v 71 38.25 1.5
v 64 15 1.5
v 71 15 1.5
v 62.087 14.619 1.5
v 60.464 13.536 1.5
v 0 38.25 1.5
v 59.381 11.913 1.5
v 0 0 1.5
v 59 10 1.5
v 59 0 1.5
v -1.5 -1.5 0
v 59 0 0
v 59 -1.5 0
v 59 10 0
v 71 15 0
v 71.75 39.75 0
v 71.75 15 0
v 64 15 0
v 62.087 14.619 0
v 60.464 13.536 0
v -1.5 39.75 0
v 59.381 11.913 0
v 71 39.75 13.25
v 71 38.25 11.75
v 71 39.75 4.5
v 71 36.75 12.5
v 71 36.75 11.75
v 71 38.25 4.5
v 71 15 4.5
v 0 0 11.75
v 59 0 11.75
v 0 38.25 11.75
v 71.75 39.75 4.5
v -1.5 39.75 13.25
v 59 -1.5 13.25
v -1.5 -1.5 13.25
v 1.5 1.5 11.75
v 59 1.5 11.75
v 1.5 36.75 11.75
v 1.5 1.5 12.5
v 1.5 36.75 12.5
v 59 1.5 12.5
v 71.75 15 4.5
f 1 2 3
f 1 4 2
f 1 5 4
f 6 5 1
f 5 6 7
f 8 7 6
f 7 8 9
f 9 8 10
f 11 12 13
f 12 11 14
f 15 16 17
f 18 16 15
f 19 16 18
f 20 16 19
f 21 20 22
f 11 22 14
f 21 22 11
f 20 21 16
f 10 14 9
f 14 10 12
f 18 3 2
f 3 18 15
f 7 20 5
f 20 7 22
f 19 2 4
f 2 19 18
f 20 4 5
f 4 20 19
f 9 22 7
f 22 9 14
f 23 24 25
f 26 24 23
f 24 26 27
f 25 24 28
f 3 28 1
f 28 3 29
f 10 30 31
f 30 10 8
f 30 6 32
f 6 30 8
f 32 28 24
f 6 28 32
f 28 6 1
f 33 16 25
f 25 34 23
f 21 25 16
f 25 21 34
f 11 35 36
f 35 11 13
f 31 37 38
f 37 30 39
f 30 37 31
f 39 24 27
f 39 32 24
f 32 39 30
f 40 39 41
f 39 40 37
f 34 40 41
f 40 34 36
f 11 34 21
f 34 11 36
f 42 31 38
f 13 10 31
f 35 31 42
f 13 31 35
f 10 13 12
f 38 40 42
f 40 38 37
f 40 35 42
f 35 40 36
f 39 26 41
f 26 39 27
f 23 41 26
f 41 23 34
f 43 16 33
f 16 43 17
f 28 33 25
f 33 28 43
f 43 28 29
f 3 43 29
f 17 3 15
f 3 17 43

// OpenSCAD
length = 71;
height = 10.25;
width  = 38.25;

keyring_arc_length      = 12;
keyring_arc_width       = 15;
keyring_arc_arch_radius = 5;

thickness = 1.5;
claw_length = thickness;

difference() {
	cube([length, width, thickness]);
	translate([length - keyring_arc_length, 0, 0]) {
		difference() {
			cube([keyring_arc_length, keyring_arc_width, thickness]);
			translate([0, keyring_arc_width - keyring_arc_arch_radius, 0]) difference() {
				cube([keyring_arc_arch_radius, keyring_arc_arch_radius, thickness]);
				translate([keyring_arc_arch_radius, 0, 0]) cylinder(r = keyring_arc_arch_radius, h = thickness);
			}
		}
	}
}

rotate([90, 0, 0]) {
	translate([-thickness, 0, thickness]) {
		backclaw(-(width + thickness * 2));
		rotate([0, 90, 0]) backclaw(length + thickness - keyring_arc_length);
	}
}

translate([-thickness, width + thickness, 0]) {
	rotate([90, 0, 270]) backclaw(-(length + thickness));
}

#translate([length, keyring_arc_width, 0]) cube([thickness / 2, width - keyring_arc_width + thickness, thickness * 3]);

module backclaw(length = 0) {
	assert(length != 0, "length cannot be 0");
	translate([0, 0, length < 0 ? length : 0]) {
		l = length < 0 ? -length : length;
		linear_extrude(height = l) {
			polygon([[0,0], [0, height + thickness * 2], [thickness + claw_length, height + thickness + thickness * 0.5], [thickness + claw_length, height + thickness], [thickness, height + thickness], [thickness, 0]]);
		}
	}
}
